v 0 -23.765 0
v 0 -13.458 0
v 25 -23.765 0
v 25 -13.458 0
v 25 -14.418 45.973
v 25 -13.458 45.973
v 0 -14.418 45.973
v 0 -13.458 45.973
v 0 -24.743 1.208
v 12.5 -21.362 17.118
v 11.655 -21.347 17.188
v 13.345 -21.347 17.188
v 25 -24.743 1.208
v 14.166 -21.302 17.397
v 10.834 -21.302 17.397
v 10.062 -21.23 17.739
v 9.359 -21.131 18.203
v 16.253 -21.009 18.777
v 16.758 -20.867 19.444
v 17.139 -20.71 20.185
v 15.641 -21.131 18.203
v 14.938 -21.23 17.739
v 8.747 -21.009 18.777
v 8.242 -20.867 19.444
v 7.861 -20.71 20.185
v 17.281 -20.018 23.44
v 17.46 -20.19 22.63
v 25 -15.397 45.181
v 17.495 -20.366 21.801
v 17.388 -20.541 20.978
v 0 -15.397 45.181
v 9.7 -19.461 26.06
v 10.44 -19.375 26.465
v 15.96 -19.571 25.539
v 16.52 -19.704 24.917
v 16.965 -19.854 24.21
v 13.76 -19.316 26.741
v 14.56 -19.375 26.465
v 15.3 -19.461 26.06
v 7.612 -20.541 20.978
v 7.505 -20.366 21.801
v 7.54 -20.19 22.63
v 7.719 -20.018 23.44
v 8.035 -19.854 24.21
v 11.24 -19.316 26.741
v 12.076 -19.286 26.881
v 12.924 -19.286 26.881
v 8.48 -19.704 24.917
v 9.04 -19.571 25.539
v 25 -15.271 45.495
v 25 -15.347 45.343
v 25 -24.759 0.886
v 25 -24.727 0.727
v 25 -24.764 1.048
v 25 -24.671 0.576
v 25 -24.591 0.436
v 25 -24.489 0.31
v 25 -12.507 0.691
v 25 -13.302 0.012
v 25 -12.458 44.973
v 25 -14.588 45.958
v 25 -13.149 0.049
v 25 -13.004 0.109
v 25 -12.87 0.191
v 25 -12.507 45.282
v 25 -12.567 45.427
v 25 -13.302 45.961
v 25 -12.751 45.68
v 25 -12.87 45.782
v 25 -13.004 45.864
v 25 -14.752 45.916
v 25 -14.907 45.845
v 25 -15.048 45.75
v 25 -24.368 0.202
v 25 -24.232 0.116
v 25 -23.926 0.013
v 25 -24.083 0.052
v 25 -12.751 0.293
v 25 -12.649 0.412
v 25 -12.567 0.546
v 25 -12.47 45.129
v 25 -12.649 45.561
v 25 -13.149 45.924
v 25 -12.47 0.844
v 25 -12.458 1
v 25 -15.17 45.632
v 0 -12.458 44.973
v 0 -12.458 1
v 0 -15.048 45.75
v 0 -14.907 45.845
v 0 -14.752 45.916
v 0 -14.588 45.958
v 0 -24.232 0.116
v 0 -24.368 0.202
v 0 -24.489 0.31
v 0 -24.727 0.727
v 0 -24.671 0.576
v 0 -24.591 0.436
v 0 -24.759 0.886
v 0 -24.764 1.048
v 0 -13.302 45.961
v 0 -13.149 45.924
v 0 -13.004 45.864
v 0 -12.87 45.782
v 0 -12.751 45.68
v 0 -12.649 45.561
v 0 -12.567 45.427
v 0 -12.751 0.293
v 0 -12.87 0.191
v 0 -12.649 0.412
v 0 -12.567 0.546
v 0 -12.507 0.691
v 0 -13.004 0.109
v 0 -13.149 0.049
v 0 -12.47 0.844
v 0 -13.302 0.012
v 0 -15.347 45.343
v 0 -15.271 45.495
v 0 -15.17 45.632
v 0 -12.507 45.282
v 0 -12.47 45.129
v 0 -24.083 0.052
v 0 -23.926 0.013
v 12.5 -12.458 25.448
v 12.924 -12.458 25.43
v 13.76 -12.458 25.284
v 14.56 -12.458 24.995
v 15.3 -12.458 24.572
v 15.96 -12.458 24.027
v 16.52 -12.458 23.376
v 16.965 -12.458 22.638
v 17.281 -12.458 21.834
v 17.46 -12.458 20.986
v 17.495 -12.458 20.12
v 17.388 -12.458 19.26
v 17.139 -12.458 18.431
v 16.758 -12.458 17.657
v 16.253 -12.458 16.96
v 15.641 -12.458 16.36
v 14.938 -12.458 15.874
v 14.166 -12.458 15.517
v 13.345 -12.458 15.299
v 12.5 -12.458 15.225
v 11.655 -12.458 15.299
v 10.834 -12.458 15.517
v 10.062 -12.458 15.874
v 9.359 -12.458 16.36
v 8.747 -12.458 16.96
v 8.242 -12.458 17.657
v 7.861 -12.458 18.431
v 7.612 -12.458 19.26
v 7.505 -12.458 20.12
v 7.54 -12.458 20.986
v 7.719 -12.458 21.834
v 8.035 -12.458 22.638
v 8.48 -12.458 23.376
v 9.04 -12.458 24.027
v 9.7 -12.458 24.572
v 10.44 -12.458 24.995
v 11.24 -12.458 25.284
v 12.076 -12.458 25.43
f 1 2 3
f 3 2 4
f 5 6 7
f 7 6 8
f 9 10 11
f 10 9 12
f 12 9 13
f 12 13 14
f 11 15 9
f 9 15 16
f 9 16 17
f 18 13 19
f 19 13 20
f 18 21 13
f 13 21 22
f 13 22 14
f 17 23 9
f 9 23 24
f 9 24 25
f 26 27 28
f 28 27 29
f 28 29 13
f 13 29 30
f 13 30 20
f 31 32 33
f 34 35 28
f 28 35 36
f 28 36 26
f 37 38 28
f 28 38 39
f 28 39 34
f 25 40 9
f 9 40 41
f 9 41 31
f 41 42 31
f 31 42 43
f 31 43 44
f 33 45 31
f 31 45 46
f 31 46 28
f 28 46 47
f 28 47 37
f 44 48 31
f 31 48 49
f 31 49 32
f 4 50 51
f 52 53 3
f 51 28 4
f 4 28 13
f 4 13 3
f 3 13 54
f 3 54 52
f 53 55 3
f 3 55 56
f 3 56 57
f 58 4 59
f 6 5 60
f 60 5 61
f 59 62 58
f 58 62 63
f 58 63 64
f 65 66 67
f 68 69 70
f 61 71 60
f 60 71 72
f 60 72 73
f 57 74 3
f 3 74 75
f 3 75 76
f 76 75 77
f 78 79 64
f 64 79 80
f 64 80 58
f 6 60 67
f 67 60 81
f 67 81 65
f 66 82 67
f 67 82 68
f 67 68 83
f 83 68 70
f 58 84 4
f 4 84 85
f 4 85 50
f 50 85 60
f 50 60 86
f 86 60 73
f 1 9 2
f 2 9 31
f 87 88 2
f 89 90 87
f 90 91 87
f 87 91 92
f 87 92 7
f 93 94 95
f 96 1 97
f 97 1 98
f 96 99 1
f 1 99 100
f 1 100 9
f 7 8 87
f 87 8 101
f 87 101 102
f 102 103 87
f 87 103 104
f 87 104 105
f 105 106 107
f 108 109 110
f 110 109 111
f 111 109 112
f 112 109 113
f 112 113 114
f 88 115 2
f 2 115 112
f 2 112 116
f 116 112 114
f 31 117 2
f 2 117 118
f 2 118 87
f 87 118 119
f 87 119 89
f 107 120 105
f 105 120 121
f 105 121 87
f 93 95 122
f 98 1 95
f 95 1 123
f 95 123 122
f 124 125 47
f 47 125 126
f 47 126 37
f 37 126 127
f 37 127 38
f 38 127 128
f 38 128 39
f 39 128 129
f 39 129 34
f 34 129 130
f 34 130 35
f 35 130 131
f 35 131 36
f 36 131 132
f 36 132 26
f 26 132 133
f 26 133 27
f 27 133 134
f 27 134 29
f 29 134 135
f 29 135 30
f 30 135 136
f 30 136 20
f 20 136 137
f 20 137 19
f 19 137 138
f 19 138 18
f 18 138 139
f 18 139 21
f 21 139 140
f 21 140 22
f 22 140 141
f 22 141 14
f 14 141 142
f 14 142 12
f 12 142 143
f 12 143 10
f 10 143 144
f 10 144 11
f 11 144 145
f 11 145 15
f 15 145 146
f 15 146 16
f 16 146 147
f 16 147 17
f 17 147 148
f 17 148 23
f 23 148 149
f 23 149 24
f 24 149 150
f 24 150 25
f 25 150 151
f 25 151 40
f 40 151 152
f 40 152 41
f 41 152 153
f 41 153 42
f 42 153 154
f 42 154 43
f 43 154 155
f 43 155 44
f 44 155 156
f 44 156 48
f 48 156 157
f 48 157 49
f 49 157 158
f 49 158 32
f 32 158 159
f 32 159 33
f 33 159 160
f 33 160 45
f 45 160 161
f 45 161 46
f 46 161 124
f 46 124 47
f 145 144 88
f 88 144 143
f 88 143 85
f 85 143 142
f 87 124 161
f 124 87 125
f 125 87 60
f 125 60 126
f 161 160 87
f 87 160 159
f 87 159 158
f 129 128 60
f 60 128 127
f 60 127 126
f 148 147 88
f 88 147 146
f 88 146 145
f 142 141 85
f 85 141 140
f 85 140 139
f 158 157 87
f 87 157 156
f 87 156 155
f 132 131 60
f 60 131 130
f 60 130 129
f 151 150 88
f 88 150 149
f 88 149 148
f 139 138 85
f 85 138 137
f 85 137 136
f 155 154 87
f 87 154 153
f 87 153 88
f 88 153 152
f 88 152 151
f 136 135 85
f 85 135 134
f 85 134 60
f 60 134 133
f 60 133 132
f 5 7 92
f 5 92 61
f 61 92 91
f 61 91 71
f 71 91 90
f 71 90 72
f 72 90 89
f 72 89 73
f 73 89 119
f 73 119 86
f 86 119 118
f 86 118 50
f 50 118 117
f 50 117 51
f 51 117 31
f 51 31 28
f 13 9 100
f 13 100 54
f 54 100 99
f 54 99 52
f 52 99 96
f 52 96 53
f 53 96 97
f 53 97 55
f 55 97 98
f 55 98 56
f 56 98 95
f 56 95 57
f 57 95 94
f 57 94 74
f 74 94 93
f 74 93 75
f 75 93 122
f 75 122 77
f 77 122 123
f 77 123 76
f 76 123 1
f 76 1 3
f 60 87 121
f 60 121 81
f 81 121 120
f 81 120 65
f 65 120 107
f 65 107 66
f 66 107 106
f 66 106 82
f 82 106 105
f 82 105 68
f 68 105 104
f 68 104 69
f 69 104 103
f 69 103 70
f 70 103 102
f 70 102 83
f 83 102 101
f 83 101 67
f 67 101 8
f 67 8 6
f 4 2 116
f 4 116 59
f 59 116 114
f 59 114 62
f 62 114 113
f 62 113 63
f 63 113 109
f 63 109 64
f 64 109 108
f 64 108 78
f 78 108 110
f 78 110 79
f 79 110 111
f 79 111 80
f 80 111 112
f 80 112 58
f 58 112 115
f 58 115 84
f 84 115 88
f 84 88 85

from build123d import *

# Parameters (mm, degrees)
BOSS_EXTRUDE1_DEPTH = 25
SKETCH2_R           = 5
CUT_EXTRUDE1_DEPTH  = 25
SKETCH3_W           = 45.972937234
SKETCH3_H           = 12.458050792
CUT_EXTRUDE2_DEPTH  = 58.995783967
FILLET1_R           = 1


with BuildPart() as part:
    # Sketch1 → Boss-Extrude1 (new body)
    with BuildSketch(Plane(origin=(0, 0, 0), x_dir=(0, 0, -1), z_dir=(1, 0, 0))):
        Polygon((0, 0), (-45.972937234, 0), (-45.972937234, -15.228150532), (0, -25), align=None)
    extrude(amount=BOSS_EXTRUDE1_DEPTH)

    # Sketch2 → Cut-Extrude1 (cut)
    with BuildSketch(Plane(origin=(0, -23.919318221, 5.084208038), x_dir=(1, 0, 0), z_dir=(0, -0.9781476007338064, 0.20791169081775596))):
        with Locations(Location((12.5, 17.30220773, 0), (0, 0, 270))):
            Circle(SKETCH2_R)
    extrude(amount=-CUT_EXTRUDE1_DEPTH, mode=Mode.SUBTRACT)

    # Sketch3 → Cut-Extrude2 (cut, through all)
    with BuildSketch(Plane.ZY):
        with Locations((22.986468617, -6.229025396)):
            Rectangle(SKETCH3_W, SKETCH3_H)
    extrude(amount=-CUT_EXTRUDE2_DEPTH, mode=Mode.SUBTRACT)

    # Fillet1
    fillet1_edges = [part.edges().sort_by_distance(p)[0] for p in [
        (12.5, -12.458050792, 45.972937234),
        (12.5, -12.458050792, 0),
        (12.5, -25, 0),
        (12.5, -15.228150532, 45.972937234),
    ]]
    fillet(fillet1_edges, radius=FILLET1_R)


solid = part.part
